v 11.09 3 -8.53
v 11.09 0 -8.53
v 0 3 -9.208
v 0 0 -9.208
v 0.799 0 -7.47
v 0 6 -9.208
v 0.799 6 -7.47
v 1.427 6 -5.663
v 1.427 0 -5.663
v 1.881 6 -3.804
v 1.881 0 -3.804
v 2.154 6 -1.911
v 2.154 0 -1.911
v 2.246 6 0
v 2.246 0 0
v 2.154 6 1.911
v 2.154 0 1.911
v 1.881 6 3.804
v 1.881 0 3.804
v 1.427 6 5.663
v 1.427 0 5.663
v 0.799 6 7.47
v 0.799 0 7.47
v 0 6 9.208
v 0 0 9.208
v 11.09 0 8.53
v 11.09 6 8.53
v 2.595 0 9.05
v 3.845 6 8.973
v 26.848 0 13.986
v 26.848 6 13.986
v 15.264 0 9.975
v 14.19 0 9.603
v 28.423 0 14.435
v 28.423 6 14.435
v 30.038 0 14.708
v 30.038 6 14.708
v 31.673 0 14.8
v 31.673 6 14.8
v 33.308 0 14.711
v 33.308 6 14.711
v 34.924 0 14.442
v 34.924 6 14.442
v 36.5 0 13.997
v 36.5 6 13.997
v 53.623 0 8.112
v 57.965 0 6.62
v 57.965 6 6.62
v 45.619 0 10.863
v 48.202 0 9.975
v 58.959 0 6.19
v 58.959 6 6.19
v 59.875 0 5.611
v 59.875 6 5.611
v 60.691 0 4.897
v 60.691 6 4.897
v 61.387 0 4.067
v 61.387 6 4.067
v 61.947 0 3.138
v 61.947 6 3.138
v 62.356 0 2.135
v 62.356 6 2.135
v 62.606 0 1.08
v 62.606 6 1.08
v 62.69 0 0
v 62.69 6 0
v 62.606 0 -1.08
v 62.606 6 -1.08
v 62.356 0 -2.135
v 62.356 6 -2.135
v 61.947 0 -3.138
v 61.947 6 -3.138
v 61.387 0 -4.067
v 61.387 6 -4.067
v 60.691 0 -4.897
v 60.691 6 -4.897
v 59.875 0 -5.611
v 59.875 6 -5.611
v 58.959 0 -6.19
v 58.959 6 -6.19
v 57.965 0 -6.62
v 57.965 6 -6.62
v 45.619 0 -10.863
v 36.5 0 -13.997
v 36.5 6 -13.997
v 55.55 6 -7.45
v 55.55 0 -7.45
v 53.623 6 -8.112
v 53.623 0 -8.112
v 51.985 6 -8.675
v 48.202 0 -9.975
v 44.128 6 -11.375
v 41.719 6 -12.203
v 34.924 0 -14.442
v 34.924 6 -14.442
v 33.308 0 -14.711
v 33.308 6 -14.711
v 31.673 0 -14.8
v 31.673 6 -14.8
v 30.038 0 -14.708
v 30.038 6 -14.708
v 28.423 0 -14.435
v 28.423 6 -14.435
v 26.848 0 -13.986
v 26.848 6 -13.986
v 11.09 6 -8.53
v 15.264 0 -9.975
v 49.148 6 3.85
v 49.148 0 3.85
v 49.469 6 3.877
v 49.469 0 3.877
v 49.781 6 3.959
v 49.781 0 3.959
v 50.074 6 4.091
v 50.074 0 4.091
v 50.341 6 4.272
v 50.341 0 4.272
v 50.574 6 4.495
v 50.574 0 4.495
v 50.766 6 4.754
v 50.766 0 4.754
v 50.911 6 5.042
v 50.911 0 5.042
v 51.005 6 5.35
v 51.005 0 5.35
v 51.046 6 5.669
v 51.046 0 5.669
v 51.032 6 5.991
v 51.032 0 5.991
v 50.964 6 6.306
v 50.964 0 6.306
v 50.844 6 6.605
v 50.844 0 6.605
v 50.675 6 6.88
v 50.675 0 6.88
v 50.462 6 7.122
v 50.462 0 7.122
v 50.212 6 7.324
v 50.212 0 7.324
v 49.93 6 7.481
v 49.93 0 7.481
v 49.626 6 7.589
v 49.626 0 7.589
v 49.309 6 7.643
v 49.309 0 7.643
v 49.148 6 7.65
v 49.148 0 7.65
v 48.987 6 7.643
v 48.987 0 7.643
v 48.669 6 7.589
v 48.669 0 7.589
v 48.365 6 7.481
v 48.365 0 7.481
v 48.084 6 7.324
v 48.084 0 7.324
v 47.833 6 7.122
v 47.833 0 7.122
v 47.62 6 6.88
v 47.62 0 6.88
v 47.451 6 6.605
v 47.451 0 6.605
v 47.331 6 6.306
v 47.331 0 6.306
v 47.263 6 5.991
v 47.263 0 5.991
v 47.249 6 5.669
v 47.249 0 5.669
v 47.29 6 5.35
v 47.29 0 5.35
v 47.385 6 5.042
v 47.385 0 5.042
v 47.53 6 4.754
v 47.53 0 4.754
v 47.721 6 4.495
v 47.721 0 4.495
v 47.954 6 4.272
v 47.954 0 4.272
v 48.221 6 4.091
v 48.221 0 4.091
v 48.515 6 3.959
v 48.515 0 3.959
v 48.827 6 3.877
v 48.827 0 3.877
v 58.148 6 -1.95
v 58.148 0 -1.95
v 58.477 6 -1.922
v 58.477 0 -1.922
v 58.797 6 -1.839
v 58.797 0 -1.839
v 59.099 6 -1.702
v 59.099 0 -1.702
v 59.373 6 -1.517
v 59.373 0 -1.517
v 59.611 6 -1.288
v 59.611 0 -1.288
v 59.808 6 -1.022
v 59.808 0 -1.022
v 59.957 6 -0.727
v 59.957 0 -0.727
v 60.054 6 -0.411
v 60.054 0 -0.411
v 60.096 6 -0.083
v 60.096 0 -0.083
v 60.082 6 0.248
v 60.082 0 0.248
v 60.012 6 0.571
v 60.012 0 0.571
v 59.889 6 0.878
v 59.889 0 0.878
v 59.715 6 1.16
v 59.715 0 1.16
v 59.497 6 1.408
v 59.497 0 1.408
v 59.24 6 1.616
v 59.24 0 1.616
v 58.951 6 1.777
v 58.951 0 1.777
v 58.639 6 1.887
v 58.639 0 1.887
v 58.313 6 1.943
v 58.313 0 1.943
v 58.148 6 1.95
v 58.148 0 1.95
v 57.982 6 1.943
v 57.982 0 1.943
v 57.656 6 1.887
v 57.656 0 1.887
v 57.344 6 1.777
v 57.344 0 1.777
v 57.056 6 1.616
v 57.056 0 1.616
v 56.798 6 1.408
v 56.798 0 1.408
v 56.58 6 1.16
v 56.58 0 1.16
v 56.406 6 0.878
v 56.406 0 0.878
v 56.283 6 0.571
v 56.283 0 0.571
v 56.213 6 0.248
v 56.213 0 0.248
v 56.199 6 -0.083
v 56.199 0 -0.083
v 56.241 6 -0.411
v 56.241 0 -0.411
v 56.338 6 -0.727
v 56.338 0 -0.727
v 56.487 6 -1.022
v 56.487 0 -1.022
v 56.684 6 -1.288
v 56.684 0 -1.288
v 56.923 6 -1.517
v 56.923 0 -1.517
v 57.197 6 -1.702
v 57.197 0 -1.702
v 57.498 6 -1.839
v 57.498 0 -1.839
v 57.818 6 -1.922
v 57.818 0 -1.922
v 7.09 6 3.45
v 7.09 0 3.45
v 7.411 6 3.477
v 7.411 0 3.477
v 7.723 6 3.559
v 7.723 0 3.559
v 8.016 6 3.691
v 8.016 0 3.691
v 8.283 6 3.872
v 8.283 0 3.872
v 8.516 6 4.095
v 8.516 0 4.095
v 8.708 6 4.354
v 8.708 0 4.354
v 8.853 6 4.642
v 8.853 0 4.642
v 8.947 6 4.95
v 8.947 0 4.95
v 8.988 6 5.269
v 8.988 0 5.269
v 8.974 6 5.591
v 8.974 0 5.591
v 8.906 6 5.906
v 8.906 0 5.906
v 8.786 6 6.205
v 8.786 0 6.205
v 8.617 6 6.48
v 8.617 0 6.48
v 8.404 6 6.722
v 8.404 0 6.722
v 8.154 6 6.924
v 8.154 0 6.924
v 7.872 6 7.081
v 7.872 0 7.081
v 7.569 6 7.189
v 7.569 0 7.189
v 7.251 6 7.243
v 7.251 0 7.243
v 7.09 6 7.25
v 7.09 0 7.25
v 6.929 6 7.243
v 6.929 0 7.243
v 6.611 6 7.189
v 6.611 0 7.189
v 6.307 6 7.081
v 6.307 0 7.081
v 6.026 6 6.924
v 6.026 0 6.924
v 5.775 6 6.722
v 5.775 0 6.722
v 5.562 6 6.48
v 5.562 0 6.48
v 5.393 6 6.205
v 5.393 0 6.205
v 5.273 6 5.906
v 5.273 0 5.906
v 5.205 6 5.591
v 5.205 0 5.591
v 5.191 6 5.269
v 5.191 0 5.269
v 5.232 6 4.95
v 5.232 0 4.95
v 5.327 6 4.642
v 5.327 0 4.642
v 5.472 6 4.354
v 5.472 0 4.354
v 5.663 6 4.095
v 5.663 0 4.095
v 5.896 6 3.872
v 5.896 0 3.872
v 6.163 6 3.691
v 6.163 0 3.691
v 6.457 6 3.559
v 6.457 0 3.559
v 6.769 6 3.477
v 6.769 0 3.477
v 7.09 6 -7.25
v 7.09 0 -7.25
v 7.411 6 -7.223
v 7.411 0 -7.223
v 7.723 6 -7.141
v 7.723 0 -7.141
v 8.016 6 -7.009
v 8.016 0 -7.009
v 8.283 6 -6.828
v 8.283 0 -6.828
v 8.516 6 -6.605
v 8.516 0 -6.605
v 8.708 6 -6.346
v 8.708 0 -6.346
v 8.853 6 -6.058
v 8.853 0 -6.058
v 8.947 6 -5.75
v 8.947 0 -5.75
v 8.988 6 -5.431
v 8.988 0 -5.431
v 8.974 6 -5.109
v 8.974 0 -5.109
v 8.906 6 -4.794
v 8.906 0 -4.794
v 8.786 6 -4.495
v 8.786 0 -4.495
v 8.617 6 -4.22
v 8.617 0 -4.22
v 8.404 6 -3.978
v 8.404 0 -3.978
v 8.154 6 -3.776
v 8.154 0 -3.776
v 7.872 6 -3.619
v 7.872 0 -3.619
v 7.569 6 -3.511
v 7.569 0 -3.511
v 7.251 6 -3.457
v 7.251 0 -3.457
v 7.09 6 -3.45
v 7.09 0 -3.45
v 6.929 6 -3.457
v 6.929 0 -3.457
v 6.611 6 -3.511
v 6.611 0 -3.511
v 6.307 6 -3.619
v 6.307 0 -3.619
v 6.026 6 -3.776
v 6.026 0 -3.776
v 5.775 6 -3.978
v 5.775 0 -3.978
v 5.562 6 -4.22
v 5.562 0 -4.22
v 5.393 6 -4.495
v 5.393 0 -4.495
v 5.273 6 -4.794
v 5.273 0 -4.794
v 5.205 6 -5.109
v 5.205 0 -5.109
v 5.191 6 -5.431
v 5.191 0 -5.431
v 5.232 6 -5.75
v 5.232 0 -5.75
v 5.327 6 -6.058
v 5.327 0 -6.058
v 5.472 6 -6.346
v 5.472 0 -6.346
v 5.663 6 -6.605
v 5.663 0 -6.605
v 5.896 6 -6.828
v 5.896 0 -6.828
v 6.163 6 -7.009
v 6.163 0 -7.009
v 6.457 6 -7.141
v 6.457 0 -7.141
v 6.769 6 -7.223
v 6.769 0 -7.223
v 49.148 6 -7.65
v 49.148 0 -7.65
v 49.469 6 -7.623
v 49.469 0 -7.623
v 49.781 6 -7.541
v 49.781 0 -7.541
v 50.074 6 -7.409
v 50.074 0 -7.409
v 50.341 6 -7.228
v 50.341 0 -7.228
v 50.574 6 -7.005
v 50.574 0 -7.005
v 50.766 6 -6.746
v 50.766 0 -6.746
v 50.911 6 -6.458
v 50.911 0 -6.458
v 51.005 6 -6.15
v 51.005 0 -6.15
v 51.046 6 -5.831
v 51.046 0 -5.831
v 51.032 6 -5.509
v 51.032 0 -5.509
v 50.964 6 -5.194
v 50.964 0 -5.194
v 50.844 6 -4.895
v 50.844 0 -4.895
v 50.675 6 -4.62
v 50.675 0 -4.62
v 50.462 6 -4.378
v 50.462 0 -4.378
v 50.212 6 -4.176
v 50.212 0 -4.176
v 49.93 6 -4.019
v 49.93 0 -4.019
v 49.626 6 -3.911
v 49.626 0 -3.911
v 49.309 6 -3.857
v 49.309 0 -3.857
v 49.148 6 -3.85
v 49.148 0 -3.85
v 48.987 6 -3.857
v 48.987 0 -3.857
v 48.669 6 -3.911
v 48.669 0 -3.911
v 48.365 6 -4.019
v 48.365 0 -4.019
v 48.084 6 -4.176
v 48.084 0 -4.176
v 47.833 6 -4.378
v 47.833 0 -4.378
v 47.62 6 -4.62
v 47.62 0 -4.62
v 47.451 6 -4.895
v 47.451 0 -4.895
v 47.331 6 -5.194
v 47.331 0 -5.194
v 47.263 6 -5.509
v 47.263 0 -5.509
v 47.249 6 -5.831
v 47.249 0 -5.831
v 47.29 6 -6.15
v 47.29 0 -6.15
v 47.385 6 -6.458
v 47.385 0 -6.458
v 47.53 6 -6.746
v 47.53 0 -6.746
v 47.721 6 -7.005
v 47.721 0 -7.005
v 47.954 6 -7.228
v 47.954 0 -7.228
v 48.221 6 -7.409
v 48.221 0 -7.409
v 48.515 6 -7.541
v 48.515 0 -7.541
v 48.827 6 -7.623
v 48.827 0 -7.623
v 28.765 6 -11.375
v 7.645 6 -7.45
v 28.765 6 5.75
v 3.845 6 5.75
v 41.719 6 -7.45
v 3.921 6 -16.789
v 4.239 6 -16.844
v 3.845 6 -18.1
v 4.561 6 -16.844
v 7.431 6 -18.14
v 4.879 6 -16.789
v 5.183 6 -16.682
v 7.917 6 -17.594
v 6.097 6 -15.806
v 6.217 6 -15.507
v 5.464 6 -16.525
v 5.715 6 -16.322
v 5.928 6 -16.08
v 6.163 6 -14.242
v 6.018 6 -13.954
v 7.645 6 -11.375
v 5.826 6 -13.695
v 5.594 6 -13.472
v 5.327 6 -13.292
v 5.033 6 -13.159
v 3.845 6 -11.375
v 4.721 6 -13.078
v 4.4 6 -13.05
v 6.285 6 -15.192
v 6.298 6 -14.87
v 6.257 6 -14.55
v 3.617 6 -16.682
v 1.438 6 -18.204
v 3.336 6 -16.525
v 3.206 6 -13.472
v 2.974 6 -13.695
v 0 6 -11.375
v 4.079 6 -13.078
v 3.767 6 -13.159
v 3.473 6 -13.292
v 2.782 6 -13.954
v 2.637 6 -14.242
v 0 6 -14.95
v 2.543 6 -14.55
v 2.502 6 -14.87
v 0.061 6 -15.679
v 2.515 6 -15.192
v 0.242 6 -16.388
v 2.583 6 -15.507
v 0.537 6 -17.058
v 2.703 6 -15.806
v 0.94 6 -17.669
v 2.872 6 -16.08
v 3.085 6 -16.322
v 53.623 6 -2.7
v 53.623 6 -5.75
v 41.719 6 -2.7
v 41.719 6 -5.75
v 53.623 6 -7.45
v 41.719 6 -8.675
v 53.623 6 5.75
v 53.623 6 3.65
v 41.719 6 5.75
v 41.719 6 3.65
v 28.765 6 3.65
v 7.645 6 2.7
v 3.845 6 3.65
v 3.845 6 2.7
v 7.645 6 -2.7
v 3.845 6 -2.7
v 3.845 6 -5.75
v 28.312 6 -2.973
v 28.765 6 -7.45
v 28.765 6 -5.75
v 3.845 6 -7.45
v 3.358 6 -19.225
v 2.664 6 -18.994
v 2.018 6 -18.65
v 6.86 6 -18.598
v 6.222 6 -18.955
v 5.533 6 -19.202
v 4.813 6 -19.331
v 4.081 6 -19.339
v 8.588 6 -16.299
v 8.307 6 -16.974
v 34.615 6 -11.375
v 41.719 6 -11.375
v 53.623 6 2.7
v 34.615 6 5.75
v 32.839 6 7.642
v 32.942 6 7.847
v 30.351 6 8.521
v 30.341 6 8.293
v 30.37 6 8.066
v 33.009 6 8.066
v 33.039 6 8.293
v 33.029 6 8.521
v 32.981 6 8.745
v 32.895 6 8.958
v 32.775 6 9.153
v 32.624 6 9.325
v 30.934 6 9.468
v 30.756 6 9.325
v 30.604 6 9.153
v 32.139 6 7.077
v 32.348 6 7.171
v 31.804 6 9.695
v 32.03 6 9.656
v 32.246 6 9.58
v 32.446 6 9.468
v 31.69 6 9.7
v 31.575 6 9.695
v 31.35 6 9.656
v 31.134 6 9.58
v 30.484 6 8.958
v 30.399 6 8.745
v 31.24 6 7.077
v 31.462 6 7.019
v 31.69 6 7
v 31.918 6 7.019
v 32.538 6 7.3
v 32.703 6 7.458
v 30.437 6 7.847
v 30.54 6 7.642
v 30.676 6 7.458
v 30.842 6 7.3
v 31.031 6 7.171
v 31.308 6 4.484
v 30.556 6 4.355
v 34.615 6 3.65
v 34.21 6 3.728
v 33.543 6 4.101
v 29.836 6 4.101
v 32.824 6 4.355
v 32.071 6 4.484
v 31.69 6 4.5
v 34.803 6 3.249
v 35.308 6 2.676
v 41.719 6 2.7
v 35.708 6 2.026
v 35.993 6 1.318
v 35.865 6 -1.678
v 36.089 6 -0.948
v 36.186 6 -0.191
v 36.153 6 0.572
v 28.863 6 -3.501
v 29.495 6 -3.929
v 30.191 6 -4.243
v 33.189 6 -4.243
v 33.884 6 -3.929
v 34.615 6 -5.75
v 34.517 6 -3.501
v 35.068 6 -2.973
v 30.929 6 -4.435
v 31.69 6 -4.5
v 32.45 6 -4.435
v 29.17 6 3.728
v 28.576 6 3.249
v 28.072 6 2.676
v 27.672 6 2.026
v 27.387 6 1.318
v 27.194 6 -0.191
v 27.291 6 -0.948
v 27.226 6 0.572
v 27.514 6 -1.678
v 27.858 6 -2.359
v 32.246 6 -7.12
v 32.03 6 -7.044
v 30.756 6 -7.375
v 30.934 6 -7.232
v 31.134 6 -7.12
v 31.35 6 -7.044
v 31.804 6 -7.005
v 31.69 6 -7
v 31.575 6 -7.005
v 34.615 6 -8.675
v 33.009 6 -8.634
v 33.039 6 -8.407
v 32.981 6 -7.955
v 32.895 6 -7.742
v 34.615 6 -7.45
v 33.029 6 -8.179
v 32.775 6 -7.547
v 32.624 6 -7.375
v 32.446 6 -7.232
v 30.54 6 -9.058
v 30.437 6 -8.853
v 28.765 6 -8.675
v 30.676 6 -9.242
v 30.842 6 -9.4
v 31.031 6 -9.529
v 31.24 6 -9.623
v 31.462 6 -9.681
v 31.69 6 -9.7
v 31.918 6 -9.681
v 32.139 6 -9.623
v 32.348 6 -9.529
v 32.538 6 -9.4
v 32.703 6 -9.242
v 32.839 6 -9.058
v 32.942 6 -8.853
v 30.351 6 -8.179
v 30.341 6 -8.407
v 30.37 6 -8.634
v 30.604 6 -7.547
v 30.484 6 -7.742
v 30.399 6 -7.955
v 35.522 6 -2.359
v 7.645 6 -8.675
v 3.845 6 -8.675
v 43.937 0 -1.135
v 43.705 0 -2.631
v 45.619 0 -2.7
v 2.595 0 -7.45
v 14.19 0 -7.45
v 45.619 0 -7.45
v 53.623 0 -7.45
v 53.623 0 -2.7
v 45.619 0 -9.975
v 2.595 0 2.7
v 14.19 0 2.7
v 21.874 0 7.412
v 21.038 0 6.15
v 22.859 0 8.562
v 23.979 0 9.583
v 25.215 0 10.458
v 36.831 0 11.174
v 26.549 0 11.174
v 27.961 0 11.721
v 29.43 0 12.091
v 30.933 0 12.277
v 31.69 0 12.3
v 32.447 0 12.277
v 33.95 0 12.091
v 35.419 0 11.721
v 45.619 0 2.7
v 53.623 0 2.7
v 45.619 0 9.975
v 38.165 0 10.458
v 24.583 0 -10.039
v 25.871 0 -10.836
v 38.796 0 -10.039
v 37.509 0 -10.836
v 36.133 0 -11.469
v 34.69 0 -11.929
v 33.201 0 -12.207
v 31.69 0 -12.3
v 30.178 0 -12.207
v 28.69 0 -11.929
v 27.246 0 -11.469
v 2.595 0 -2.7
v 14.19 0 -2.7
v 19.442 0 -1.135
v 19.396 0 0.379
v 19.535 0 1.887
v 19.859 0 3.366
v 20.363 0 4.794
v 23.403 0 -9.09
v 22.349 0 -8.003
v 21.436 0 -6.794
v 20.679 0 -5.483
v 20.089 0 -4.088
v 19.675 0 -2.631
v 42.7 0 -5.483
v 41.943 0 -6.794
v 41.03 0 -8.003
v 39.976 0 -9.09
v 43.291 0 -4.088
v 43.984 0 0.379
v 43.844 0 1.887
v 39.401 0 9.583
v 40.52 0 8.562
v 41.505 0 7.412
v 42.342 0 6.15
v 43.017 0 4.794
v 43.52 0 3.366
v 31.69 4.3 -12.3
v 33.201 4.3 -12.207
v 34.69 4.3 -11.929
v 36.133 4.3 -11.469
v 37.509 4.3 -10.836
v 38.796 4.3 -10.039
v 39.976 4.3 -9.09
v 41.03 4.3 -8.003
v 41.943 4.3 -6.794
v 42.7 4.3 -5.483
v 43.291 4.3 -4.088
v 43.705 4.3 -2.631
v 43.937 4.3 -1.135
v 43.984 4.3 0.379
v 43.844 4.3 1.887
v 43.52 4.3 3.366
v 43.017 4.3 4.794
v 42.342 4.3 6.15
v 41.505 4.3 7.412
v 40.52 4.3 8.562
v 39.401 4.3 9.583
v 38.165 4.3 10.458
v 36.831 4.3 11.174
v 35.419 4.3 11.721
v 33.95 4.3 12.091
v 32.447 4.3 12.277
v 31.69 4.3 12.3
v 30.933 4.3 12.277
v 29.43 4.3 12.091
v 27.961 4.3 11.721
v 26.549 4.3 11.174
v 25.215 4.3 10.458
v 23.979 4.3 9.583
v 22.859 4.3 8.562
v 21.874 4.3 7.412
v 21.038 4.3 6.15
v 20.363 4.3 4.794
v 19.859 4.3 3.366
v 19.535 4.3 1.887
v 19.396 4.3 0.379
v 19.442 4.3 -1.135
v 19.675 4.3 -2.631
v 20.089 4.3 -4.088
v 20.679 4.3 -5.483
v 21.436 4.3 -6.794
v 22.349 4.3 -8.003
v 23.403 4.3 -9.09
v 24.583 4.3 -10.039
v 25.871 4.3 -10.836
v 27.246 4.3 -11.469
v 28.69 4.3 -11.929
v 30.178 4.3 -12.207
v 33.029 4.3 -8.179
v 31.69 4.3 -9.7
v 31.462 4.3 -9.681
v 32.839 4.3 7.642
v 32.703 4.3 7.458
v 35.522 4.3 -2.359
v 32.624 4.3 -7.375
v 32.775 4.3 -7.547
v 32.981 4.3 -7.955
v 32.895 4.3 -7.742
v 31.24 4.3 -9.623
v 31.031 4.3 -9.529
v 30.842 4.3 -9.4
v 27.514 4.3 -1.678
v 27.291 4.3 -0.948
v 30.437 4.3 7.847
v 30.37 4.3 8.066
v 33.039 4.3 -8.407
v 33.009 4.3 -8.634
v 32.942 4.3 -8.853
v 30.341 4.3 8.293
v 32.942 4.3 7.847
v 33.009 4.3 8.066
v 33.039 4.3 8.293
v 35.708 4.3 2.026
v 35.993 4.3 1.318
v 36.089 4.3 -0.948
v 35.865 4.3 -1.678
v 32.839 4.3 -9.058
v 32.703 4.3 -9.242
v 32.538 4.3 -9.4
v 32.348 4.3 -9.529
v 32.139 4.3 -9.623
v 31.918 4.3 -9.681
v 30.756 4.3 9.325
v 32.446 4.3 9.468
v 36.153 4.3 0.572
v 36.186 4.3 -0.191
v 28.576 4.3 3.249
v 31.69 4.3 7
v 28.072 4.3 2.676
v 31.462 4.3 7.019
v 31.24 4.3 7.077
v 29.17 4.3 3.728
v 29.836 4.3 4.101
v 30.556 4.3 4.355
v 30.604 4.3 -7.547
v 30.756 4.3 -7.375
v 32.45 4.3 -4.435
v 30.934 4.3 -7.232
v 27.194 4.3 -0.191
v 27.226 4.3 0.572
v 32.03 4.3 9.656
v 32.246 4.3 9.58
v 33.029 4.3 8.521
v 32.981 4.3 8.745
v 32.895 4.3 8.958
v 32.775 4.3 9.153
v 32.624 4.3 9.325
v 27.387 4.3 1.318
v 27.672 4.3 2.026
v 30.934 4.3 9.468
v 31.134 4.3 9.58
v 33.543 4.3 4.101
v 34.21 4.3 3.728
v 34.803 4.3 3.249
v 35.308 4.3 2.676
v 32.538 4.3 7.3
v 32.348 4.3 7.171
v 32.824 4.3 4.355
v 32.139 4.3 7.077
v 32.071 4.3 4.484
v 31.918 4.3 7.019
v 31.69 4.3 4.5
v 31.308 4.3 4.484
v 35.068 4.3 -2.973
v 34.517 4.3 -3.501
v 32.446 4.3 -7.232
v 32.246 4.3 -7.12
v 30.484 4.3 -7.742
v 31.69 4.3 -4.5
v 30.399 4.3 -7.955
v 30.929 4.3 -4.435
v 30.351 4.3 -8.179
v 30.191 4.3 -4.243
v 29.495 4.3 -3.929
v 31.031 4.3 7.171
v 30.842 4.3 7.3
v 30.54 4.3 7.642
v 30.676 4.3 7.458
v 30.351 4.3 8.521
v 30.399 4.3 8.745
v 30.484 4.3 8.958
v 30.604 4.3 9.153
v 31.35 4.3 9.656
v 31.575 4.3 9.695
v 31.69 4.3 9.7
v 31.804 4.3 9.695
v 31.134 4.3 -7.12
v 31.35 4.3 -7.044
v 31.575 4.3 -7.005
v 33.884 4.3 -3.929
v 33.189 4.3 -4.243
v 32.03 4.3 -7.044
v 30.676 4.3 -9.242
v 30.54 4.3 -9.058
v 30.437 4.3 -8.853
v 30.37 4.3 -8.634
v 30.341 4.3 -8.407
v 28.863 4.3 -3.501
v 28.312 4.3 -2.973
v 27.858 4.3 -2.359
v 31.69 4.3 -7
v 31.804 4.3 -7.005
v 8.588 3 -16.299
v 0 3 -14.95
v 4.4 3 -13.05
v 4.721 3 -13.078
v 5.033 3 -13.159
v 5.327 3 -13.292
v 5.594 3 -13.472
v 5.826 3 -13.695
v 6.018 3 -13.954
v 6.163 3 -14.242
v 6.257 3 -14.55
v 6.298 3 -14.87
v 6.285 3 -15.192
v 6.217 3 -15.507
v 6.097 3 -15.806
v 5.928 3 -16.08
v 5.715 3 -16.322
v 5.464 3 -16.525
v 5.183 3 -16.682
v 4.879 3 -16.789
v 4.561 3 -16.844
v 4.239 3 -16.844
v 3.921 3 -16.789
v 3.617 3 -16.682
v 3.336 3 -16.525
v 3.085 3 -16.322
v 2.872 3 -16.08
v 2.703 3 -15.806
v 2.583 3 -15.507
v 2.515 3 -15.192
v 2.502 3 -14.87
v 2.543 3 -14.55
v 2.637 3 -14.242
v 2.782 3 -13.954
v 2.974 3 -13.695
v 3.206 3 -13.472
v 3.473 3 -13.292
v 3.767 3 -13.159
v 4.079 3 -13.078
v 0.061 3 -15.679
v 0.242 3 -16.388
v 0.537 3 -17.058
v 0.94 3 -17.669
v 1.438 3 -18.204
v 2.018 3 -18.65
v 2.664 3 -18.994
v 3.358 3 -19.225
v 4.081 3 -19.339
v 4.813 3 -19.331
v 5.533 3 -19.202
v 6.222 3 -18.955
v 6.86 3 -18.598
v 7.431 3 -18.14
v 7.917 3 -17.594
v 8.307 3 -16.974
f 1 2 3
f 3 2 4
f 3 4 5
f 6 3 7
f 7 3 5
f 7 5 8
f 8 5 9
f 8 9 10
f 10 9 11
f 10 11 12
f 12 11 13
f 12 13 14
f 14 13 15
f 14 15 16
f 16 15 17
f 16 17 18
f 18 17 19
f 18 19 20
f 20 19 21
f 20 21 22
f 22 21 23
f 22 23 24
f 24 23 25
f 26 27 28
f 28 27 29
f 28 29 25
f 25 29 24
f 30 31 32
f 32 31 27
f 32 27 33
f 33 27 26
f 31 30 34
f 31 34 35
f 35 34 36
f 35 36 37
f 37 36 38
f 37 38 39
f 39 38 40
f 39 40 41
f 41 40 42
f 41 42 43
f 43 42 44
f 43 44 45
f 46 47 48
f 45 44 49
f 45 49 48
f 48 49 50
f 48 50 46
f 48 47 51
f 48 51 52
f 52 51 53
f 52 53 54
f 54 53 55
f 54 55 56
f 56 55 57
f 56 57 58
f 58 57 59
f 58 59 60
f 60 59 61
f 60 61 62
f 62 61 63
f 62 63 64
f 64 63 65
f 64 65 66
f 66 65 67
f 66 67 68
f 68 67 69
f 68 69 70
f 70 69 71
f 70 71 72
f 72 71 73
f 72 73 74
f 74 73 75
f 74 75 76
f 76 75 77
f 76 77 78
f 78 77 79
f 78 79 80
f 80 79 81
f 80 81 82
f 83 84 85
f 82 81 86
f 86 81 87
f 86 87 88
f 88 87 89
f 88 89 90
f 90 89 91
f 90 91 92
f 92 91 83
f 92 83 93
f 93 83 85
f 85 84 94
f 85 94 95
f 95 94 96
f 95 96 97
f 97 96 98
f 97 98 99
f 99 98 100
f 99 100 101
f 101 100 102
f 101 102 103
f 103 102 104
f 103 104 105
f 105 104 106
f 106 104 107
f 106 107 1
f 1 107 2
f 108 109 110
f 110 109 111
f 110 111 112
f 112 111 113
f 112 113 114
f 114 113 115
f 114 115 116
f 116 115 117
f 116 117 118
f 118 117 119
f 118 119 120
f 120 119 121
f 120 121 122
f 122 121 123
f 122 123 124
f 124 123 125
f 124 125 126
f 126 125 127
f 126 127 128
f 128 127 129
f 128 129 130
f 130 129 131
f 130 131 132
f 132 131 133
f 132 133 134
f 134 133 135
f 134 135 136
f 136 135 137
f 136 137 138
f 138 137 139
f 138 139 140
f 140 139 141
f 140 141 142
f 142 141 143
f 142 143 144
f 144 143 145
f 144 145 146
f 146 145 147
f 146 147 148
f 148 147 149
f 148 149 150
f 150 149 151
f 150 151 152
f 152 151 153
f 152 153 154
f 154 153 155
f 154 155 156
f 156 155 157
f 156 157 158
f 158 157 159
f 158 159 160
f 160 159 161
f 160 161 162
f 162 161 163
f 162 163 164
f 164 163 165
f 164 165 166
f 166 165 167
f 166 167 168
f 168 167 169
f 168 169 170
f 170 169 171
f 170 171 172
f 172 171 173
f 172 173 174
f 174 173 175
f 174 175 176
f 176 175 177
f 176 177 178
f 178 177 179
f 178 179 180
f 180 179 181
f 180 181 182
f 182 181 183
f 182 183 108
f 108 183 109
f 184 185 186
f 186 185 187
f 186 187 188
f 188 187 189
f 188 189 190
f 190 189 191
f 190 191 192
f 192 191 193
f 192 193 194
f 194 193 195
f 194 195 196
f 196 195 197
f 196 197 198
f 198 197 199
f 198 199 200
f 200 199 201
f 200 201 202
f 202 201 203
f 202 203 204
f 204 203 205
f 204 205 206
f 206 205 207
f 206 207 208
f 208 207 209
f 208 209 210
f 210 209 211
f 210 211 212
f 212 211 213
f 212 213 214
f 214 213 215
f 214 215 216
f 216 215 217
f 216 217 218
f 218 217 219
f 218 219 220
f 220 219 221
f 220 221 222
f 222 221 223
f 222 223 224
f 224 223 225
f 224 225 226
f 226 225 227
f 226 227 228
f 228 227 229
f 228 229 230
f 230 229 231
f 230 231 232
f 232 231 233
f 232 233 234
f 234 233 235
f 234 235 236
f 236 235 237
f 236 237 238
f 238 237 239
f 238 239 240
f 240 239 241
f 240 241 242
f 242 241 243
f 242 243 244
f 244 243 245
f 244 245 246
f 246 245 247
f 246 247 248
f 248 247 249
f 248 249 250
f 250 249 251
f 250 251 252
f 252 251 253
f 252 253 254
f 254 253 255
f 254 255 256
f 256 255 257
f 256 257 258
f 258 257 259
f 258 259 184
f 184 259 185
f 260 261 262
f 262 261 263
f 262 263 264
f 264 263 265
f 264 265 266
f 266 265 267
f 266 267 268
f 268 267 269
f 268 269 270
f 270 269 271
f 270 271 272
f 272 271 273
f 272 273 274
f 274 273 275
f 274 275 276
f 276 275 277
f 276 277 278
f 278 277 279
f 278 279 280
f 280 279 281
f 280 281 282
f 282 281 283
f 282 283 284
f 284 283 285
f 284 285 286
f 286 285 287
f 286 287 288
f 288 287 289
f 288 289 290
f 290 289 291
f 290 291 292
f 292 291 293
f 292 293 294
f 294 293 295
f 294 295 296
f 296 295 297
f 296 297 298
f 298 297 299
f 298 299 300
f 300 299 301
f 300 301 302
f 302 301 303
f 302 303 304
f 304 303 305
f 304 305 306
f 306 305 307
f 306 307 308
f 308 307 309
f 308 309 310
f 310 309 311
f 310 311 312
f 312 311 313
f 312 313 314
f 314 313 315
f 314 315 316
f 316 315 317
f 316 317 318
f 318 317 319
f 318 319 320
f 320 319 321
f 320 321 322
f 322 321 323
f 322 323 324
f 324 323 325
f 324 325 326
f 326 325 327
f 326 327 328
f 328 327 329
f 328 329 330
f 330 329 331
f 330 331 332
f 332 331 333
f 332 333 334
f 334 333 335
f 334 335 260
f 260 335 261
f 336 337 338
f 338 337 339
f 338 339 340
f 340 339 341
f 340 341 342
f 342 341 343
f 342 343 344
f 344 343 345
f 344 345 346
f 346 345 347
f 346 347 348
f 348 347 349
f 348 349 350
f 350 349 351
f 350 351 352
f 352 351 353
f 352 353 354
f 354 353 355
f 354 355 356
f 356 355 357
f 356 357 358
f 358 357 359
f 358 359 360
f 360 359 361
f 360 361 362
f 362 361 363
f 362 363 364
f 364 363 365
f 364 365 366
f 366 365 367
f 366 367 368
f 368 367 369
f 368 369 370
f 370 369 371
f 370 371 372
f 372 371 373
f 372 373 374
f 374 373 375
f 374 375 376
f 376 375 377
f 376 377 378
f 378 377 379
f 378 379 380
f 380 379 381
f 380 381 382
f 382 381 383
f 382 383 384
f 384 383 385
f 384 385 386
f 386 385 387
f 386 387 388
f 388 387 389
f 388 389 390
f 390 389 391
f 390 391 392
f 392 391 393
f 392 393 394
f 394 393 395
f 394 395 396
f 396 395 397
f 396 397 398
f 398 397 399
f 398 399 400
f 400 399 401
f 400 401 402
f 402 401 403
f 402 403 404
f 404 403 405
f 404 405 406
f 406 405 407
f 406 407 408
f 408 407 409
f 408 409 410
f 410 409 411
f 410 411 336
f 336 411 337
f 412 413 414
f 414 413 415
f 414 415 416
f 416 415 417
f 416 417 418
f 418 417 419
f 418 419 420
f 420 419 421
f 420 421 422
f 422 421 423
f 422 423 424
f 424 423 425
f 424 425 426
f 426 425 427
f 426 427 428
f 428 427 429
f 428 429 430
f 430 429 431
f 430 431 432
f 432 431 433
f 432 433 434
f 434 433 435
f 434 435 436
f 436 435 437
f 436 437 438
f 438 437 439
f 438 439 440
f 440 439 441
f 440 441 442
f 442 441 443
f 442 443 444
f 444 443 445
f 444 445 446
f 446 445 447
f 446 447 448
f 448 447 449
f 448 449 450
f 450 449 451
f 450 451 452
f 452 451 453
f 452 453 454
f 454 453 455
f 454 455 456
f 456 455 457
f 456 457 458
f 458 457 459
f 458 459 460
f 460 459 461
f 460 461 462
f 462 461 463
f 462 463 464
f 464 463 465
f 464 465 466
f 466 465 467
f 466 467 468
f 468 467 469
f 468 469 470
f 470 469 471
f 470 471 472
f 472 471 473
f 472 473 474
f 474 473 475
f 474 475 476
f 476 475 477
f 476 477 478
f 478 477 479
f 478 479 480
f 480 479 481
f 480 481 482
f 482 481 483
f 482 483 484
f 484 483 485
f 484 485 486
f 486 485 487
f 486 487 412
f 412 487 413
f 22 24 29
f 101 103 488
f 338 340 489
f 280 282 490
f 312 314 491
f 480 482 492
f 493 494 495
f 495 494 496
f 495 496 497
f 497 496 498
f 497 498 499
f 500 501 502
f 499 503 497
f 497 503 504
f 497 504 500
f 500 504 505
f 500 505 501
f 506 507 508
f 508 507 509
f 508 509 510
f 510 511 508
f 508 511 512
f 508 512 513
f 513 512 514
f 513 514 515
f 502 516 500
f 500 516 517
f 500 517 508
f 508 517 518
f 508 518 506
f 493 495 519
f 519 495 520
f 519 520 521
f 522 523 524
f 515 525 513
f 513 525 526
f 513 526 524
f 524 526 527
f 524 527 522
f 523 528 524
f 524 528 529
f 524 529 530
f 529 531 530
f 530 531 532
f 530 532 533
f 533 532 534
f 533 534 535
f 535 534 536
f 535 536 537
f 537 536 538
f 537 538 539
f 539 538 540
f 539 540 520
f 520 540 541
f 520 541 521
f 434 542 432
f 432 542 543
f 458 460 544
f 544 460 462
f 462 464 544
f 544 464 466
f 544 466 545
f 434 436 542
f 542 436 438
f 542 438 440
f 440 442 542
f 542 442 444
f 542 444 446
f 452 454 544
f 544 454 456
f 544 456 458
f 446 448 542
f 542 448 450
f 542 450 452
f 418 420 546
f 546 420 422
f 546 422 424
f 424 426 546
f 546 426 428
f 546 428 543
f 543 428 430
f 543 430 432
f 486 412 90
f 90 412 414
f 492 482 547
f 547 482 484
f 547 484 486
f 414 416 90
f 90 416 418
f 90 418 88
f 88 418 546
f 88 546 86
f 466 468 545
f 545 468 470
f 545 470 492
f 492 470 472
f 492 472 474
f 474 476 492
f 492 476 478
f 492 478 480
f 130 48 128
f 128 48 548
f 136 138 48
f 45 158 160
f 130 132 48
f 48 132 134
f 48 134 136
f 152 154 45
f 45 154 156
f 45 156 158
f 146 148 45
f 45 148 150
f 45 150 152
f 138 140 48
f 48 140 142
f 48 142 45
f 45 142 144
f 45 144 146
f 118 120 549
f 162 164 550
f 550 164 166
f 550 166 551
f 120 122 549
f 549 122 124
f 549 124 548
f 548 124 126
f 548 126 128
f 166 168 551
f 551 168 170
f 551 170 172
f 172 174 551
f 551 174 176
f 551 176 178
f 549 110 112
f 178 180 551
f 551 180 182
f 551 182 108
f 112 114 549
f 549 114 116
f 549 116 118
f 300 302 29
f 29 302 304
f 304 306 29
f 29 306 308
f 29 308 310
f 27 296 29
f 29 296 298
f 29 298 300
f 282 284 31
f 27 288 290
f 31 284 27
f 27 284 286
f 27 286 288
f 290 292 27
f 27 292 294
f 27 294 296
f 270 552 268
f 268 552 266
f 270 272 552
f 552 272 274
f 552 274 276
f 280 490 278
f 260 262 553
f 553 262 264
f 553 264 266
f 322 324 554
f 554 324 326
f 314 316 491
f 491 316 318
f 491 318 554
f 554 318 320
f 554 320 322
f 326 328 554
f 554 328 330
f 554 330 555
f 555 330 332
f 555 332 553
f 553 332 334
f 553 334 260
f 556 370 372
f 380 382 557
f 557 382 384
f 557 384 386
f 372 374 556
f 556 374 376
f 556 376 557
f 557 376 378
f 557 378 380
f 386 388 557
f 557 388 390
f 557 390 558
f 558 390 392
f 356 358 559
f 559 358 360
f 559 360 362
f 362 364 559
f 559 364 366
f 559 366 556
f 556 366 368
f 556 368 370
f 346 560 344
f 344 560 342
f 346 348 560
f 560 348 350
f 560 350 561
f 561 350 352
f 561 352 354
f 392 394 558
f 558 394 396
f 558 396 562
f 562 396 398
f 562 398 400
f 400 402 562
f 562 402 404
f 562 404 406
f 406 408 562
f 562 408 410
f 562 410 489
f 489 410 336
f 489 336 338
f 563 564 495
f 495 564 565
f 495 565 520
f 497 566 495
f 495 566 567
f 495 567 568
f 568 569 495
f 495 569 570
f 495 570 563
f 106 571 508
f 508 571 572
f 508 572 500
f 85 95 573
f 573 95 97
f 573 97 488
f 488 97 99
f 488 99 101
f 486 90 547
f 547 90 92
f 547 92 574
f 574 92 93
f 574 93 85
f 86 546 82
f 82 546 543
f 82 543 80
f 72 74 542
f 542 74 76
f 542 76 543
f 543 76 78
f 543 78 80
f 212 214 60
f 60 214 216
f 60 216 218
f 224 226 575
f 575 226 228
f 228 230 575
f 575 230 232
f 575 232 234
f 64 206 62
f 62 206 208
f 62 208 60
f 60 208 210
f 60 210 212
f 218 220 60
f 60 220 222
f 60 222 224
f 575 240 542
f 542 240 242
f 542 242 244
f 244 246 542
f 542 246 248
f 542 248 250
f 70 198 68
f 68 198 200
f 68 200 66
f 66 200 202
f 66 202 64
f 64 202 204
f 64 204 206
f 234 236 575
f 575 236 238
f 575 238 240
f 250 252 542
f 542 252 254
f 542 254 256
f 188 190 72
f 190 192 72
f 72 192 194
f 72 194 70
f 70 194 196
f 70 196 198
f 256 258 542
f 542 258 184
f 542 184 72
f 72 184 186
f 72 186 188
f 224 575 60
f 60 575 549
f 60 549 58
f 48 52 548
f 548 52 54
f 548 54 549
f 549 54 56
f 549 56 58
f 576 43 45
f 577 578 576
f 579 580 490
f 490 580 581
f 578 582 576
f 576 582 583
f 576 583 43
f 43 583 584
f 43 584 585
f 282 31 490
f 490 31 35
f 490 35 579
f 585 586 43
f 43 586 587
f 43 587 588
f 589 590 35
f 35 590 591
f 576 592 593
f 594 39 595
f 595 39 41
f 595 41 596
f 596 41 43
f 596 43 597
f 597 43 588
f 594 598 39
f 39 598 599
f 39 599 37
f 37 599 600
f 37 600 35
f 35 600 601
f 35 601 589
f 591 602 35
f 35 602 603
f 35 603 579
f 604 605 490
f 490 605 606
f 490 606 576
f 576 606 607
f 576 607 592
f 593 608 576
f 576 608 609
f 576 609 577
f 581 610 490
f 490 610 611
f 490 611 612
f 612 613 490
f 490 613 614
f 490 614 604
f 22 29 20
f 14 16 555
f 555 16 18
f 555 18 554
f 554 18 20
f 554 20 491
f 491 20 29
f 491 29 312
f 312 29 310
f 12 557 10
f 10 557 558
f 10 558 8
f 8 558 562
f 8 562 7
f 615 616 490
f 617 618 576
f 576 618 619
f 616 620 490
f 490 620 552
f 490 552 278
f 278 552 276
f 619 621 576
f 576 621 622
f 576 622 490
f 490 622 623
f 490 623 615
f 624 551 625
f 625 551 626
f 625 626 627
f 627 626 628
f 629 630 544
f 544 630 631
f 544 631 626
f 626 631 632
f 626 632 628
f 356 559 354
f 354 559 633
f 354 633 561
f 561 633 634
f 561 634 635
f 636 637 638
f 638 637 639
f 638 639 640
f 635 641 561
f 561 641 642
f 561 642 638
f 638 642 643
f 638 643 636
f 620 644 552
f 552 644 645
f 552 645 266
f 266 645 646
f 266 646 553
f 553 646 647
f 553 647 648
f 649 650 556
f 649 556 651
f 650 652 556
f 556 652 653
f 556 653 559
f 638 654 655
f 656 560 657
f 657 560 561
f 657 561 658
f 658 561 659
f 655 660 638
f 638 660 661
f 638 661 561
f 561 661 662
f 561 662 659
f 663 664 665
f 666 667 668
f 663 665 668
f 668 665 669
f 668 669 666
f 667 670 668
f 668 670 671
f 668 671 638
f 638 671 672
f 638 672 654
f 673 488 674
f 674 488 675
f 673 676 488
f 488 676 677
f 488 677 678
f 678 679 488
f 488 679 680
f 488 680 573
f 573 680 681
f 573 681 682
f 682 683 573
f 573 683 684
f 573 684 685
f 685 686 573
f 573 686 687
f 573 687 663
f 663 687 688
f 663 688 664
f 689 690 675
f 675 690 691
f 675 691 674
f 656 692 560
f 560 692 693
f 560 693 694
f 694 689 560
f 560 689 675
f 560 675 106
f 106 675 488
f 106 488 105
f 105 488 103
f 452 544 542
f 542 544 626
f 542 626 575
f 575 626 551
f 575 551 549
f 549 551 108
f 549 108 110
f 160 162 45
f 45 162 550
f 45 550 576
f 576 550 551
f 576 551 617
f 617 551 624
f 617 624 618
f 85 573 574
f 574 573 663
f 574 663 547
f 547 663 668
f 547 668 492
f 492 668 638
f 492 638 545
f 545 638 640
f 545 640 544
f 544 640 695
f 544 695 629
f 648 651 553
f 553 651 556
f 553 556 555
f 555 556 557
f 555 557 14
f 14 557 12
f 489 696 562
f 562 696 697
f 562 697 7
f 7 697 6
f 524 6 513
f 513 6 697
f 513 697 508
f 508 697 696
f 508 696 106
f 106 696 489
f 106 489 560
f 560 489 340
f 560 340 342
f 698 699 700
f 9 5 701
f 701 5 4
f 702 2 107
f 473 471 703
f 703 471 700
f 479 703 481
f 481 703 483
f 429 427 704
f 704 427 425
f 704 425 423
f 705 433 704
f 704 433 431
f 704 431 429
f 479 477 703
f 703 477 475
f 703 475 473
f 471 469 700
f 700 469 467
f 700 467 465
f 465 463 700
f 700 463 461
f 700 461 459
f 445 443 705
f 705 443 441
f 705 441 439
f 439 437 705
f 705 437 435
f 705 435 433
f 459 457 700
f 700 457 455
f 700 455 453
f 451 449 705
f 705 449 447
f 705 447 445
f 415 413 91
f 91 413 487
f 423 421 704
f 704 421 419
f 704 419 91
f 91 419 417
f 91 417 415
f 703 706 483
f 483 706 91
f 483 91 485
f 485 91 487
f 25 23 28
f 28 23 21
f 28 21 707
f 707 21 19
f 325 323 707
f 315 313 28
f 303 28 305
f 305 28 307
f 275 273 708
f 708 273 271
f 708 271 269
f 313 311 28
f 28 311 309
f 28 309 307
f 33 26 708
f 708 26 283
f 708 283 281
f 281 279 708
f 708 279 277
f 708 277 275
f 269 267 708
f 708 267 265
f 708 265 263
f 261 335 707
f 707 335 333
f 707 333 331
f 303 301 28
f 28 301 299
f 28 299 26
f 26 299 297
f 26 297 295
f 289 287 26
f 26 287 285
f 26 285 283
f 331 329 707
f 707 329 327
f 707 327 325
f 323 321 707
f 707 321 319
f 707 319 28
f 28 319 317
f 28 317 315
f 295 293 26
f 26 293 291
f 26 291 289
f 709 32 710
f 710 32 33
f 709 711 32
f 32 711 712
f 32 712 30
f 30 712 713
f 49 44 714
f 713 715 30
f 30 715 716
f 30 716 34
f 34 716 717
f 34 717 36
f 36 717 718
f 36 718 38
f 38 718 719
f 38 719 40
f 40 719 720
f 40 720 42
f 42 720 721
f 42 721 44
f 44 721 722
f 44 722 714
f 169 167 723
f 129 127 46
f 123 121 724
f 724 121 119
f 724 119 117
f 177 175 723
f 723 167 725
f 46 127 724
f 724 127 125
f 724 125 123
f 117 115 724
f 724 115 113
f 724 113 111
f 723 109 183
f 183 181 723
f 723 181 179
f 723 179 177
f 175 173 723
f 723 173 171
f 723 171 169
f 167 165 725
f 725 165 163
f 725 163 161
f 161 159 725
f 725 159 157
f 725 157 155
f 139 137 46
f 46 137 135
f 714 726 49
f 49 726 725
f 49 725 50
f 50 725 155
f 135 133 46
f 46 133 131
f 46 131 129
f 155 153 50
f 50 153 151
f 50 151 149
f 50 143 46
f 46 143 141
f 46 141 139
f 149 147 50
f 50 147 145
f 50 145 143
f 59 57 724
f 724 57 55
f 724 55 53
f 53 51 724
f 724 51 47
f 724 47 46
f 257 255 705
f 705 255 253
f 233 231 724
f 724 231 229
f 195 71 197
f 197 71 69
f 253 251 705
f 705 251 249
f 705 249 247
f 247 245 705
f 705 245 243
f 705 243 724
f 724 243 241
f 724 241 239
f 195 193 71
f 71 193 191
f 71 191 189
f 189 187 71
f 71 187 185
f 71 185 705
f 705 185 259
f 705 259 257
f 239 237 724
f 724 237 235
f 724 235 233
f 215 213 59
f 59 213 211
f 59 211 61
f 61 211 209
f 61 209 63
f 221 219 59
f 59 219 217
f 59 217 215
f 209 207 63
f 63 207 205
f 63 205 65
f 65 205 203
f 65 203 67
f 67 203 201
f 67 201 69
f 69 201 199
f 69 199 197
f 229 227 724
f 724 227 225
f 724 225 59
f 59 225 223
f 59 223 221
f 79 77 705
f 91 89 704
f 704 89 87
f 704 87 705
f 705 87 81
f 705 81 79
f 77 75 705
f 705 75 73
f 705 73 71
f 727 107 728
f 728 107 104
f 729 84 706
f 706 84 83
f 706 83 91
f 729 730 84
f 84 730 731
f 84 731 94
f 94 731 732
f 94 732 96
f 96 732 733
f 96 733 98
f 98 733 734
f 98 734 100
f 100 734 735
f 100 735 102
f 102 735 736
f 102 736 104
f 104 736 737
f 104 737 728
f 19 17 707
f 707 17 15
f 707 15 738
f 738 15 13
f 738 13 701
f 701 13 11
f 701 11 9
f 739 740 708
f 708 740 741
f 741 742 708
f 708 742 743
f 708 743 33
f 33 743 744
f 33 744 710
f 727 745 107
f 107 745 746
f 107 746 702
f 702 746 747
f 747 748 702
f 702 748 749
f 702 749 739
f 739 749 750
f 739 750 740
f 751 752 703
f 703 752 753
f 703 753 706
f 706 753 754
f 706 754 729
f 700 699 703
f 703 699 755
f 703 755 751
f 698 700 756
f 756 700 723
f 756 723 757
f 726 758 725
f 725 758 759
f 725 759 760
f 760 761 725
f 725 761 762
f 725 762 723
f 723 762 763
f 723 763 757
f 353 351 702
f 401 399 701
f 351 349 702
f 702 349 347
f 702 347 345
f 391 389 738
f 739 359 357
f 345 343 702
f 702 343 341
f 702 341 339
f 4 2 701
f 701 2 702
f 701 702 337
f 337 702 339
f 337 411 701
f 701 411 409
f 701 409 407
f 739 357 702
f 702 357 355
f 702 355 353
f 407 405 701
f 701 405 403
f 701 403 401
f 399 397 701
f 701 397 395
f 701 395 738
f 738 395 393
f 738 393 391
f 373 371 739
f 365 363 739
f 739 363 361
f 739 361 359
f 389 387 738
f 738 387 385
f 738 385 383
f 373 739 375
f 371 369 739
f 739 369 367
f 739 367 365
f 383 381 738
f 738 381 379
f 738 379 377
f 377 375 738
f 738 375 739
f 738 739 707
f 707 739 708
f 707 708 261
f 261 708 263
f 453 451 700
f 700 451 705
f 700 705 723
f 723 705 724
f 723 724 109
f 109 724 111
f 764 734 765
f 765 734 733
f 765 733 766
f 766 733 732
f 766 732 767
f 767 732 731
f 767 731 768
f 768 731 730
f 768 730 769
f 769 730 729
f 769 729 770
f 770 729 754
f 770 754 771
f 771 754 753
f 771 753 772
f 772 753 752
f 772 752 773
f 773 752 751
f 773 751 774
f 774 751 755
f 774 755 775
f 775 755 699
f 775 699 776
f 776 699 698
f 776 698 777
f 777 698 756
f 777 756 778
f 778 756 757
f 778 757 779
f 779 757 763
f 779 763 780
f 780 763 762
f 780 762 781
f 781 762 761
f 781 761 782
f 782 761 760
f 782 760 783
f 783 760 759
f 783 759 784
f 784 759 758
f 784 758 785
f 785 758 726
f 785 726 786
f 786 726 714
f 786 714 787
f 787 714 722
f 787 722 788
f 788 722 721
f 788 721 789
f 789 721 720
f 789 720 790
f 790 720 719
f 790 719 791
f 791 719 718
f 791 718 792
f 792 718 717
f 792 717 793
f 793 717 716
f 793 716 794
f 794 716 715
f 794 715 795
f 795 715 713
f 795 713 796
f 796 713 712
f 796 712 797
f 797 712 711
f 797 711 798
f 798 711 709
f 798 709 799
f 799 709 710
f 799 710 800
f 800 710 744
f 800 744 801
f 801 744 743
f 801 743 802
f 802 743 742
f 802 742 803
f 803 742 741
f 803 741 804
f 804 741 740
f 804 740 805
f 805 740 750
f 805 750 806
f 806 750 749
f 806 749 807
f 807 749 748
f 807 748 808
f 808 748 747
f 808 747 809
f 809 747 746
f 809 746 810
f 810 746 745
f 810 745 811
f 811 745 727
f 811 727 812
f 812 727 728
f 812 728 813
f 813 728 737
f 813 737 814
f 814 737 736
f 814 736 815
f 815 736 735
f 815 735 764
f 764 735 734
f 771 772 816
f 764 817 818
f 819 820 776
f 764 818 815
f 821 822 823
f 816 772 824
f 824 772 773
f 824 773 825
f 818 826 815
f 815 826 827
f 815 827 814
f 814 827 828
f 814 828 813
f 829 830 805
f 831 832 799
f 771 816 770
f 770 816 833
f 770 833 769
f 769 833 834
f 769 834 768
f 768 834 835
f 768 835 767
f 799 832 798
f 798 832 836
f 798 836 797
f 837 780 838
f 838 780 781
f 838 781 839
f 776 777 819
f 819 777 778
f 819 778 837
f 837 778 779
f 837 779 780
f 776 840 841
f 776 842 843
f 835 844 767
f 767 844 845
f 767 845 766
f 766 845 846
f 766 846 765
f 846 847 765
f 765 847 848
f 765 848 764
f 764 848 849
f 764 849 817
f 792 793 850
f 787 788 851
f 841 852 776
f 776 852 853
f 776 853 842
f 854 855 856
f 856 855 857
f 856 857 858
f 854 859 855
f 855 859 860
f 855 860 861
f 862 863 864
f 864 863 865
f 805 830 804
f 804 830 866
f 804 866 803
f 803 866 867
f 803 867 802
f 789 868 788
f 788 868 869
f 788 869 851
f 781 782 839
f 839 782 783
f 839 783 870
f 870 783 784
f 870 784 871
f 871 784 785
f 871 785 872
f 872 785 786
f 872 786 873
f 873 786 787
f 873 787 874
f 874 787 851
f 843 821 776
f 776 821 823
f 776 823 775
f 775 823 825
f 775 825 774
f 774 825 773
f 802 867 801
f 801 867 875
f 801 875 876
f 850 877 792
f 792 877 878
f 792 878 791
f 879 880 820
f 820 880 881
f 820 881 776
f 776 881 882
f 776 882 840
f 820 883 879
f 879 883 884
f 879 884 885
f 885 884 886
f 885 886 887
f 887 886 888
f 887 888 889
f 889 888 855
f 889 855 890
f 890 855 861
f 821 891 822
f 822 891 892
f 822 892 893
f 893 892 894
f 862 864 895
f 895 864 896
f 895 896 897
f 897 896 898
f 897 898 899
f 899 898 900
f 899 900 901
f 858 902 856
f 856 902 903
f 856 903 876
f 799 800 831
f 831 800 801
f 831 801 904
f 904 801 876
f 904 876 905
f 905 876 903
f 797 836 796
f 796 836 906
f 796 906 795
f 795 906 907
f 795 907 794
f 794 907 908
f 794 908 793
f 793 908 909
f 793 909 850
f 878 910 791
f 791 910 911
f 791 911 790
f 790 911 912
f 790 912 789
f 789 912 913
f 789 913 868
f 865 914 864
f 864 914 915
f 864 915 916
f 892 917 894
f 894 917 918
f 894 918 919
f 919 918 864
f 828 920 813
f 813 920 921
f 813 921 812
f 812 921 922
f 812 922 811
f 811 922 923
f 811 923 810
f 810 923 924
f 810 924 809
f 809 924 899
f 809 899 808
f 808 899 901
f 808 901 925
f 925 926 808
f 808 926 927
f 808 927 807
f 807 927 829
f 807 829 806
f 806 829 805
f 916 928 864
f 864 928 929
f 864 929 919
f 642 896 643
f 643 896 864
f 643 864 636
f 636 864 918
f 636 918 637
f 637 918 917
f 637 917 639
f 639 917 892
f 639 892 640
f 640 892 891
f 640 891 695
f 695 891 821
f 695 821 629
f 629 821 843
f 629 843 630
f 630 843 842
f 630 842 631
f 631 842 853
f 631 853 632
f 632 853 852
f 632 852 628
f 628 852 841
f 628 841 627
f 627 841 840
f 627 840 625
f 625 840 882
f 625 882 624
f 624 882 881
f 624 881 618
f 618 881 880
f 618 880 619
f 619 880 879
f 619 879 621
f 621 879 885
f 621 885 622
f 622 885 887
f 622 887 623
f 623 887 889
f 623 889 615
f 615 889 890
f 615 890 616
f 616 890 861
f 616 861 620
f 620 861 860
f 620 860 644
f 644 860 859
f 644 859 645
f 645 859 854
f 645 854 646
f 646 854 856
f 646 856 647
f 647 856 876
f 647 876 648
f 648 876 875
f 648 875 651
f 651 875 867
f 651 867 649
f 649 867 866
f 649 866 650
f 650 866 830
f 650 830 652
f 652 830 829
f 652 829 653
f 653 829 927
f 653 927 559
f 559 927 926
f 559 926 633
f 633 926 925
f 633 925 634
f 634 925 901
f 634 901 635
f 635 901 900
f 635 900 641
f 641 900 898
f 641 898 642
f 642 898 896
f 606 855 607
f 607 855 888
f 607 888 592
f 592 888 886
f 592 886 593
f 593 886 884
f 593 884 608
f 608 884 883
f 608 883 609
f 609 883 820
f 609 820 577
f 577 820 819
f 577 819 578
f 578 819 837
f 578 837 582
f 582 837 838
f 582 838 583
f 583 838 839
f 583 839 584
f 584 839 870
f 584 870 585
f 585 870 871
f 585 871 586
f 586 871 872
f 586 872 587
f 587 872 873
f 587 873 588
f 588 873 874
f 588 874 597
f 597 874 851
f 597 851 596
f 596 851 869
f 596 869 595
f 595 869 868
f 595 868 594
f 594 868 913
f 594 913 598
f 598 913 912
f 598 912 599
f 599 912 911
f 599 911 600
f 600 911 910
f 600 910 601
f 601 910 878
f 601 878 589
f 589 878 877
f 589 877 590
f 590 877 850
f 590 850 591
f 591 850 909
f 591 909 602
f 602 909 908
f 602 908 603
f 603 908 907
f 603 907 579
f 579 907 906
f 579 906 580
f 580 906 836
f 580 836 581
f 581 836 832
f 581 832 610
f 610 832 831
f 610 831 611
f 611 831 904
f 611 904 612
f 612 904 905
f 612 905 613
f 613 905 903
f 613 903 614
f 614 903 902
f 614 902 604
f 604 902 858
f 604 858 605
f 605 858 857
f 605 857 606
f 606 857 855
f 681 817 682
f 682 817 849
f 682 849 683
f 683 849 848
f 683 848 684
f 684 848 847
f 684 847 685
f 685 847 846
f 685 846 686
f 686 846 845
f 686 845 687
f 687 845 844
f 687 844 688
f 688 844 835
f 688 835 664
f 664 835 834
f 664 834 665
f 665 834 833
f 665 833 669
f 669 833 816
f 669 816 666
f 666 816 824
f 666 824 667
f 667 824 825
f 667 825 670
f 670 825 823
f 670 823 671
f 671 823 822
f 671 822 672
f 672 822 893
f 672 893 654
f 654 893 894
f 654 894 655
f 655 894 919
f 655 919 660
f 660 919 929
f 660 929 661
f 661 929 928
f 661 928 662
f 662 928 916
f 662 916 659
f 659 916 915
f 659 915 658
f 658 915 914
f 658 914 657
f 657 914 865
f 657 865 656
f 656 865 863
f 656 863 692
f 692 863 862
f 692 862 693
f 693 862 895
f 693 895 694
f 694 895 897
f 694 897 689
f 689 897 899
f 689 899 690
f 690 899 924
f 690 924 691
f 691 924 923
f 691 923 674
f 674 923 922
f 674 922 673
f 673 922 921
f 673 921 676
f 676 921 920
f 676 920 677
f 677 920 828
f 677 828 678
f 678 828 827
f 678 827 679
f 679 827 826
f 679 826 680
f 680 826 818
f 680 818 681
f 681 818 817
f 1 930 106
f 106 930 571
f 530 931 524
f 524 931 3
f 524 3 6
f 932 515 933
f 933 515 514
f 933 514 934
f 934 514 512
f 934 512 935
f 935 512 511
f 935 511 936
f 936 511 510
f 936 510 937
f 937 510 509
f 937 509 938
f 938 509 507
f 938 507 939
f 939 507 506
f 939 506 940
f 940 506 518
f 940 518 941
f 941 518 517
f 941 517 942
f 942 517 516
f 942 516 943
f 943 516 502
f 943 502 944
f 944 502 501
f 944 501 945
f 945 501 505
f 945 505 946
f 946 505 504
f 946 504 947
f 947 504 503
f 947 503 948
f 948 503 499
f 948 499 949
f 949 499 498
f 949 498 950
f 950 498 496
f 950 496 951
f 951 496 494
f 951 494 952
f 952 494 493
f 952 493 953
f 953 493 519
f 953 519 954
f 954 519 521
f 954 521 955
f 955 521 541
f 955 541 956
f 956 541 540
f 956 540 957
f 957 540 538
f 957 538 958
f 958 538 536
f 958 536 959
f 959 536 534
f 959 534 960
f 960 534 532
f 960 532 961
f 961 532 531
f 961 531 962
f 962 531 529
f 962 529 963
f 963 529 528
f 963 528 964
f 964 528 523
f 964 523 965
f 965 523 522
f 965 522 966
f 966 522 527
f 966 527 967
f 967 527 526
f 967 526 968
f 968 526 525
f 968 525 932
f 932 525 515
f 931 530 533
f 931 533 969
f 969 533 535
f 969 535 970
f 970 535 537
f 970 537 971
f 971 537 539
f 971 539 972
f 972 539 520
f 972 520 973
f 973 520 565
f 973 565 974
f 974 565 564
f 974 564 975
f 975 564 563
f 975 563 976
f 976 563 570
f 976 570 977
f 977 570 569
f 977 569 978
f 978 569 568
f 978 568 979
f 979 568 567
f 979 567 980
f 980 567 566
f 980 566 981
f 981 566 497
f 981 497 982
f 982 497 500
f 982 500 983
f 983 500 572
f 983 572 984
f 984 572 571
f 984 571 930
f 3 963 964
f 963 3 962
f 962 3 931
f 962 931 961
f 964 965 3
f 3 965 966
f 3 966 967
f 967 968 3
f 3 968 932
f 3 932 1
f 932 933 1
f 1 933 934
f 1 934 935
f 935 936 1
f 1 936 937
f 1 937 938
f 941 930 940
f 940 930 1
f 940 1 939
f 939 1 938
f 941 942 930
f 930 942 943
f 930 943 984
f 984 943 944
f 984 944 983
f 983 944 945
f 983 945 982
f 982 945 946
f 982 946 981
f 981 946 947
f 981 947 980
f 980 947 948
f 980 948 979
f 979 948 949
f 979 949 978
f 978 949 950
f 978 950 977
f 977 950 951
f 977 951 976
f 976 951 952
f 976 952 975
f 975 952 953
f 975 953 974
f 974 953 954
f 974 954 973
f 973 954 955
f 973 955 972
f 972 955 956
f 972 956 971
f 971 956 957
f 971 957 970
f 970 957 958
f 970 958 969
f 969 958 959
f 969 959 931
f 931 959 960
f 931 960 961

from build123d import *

# Parameters (mm, degrees)
SKETCH1_R           = 1.9
SKETCH1_R_2         = 1.95
BOSS_EXTRUDE1_DEPTH = 6
SKETCH2_R           = 12.3
CUT_EXTRUDE1_DEPTH  = 4.3
SKETCH5_R           = 1.35
SKETCH5_R_2         = 4.5
CUT_EXTRUDE3_DEPTH  = 6
SKETCH6_R           = 1.9
BOSS_EXTRUDE3_DEPTH = 3


with BuildPart() as part:
    # Sketch1 → Boss-Extrude1 (new body)
    with BuildSketch(Plane(origin=(0, 0, 0), x_dir=(1, 0, 0), z_dir=(0, 1, 0))):
        with BuildLine():
            Line((11.089751242, 8.53), (0, 9.208278243))
            ThreePointArc((0, 9.208278243), (2.245912814, 0), (0, -9.208278243))
            Line((0, -9.208278243), (11.089751242, -8.53))
            Line((11.089751242, -8.53), (26.847851363, -13.985564185))
            ThreePointArc((26.847851363, -13.985564185), (31.672879121, -14.799990383), (36.499751242, -13.996567436))
            Line((36.499751242, -13.996567436), (57.964751242, -6.619998112))
            ThreePointArc((57.964751242, -6.619998112), (62.689751242, 0), (57.964751242, 6.619998112))
            Line((57.964751242, 6.619998112), (36.499751242, 13.996567436))
            ThreePointArc((36.499751242, 13.996567436), (31.672879121, 14.799990383), (26.847851363, 13.985564185))
            Line((26.847851363, 13.985564185), (11.089751242, 8.53))
        make_face()
        with Locations(Location((7.089751242, -5.35, 0), (0, 0, 270))):
            Circle(SKETCH1_R, mode=Mode.SUBTRACT)
        with Locations(Location((7.089751242, 5.35, 0), (0, 0, 270))):
            Circle(SKETCH1_R, mode=Mode.SUBTRACT)
        with Locations(Location((49.14768086, 5.75, 0), (0, 0, 270))):
            Circle(SKETCH1_R, mode=Mode.SUBTRACT)
        with Locations(Location((49.14768086, -5.75, 0), (0, 0, 270))):
            Circle(SKETCH1_R, mode=Mode.SUBTRACT)
        with Locations(Location((58.14768086, 0, 0), (0, 0, 270))):
            Circle(SKETCH1_R_2, mode=Mode.SUBTRACT)
    extrude(amount=BOSS_EXTRUDE1_DEPTH)

    # Sketch2 → Cut-Extrude1 (cut)
    with BuildSketch(Plane(origin=(0, 0, 0), x_dir=(1, 0, 0), z_dir=(0, 1, 0))):
        with Locations(Location((31.689751242, 0, 0), (0, 0, 270))):
            Circle(SKETCH2_R)
    extrude(amount=CUT_EXTRUDE1_DEPTH, mode=Mode.SUBTRACT)

    # Sketch5 → Cut-Extrude3 (cut)
    with BuildSketch(Plane(origin=(0, 0, 0), x_dir=(1, 0, 0), z_dir=(0, 1, 0))):
        with Locations(Location((31.689751242, 8.35, 0), (0, 0, 270))):
            Circle(SKETCH5_R)
        with Locations(Location((31.689751242, -8.35, 0), (0, 0, 270))):
            Circle(SKETCH5_R)
        with Locations(Location((31.689751242, 0, 0), (0, 0, 270))):
            Circle(SKETCH5_R_2)
    extrude(amount=CUT_EXTRUDE3_DEPTH, mode=Mode.SUBTRACT)

    # Sketch6 → Boss-Extrude3 (add)
    # profile 1 of 2: a face of its own
    with BuildSketch(Plane(origin=(0, 6, 0), x_dir=(1, 0, 0), z_dir=(0, 1, 0))):
        with BuildLine():
            Line((0, 14.950374836), (0, 9.208278243))
            Line((0, 9.208278243), (11.089751242, 8.53))
            Line((11.089751242, 8.53), (8.588241962, 16.298940471))
            ThreePointArc((8.588241962, 16.298940471), (3.717454995, 19.29711296), (0, 14.950374836))
        make_face()
        with Locations(Location((4.4, 14.950374836, 0), (0, 0, 270))):
            Circle(SKETCH6_R, mode=Mode.SUBTRACT)
    # profile 2 of 2: a face of its own
    with BuildSketch(Plane(origin=(0, 6, 0), x_dir=(1, 0, 0), z_dir=(0, 1, 0))):
        with BuildLine():
            Line((0, 14.950374836), (0, 9.208278243))
            Line((0, 9.208278243), (11.089751242, 8.53))
            Line((11.089751242, 8.53), (8.588241962, 16.298940471))
            ThreePointArc((8.588241962, 16.298940471), (3.717454995, 19.29711296), (0, 14.950374836))
        make_face()
        with Locations(Location((4.4, 14.950374836, 0), (0, 0, 270))):
            Circle(SKETCH6_R, mode=Mode.SUBTRACT)
    extrude(amount=-BOSS_EXTRUDE3_DEPTH)


solid = part.part
